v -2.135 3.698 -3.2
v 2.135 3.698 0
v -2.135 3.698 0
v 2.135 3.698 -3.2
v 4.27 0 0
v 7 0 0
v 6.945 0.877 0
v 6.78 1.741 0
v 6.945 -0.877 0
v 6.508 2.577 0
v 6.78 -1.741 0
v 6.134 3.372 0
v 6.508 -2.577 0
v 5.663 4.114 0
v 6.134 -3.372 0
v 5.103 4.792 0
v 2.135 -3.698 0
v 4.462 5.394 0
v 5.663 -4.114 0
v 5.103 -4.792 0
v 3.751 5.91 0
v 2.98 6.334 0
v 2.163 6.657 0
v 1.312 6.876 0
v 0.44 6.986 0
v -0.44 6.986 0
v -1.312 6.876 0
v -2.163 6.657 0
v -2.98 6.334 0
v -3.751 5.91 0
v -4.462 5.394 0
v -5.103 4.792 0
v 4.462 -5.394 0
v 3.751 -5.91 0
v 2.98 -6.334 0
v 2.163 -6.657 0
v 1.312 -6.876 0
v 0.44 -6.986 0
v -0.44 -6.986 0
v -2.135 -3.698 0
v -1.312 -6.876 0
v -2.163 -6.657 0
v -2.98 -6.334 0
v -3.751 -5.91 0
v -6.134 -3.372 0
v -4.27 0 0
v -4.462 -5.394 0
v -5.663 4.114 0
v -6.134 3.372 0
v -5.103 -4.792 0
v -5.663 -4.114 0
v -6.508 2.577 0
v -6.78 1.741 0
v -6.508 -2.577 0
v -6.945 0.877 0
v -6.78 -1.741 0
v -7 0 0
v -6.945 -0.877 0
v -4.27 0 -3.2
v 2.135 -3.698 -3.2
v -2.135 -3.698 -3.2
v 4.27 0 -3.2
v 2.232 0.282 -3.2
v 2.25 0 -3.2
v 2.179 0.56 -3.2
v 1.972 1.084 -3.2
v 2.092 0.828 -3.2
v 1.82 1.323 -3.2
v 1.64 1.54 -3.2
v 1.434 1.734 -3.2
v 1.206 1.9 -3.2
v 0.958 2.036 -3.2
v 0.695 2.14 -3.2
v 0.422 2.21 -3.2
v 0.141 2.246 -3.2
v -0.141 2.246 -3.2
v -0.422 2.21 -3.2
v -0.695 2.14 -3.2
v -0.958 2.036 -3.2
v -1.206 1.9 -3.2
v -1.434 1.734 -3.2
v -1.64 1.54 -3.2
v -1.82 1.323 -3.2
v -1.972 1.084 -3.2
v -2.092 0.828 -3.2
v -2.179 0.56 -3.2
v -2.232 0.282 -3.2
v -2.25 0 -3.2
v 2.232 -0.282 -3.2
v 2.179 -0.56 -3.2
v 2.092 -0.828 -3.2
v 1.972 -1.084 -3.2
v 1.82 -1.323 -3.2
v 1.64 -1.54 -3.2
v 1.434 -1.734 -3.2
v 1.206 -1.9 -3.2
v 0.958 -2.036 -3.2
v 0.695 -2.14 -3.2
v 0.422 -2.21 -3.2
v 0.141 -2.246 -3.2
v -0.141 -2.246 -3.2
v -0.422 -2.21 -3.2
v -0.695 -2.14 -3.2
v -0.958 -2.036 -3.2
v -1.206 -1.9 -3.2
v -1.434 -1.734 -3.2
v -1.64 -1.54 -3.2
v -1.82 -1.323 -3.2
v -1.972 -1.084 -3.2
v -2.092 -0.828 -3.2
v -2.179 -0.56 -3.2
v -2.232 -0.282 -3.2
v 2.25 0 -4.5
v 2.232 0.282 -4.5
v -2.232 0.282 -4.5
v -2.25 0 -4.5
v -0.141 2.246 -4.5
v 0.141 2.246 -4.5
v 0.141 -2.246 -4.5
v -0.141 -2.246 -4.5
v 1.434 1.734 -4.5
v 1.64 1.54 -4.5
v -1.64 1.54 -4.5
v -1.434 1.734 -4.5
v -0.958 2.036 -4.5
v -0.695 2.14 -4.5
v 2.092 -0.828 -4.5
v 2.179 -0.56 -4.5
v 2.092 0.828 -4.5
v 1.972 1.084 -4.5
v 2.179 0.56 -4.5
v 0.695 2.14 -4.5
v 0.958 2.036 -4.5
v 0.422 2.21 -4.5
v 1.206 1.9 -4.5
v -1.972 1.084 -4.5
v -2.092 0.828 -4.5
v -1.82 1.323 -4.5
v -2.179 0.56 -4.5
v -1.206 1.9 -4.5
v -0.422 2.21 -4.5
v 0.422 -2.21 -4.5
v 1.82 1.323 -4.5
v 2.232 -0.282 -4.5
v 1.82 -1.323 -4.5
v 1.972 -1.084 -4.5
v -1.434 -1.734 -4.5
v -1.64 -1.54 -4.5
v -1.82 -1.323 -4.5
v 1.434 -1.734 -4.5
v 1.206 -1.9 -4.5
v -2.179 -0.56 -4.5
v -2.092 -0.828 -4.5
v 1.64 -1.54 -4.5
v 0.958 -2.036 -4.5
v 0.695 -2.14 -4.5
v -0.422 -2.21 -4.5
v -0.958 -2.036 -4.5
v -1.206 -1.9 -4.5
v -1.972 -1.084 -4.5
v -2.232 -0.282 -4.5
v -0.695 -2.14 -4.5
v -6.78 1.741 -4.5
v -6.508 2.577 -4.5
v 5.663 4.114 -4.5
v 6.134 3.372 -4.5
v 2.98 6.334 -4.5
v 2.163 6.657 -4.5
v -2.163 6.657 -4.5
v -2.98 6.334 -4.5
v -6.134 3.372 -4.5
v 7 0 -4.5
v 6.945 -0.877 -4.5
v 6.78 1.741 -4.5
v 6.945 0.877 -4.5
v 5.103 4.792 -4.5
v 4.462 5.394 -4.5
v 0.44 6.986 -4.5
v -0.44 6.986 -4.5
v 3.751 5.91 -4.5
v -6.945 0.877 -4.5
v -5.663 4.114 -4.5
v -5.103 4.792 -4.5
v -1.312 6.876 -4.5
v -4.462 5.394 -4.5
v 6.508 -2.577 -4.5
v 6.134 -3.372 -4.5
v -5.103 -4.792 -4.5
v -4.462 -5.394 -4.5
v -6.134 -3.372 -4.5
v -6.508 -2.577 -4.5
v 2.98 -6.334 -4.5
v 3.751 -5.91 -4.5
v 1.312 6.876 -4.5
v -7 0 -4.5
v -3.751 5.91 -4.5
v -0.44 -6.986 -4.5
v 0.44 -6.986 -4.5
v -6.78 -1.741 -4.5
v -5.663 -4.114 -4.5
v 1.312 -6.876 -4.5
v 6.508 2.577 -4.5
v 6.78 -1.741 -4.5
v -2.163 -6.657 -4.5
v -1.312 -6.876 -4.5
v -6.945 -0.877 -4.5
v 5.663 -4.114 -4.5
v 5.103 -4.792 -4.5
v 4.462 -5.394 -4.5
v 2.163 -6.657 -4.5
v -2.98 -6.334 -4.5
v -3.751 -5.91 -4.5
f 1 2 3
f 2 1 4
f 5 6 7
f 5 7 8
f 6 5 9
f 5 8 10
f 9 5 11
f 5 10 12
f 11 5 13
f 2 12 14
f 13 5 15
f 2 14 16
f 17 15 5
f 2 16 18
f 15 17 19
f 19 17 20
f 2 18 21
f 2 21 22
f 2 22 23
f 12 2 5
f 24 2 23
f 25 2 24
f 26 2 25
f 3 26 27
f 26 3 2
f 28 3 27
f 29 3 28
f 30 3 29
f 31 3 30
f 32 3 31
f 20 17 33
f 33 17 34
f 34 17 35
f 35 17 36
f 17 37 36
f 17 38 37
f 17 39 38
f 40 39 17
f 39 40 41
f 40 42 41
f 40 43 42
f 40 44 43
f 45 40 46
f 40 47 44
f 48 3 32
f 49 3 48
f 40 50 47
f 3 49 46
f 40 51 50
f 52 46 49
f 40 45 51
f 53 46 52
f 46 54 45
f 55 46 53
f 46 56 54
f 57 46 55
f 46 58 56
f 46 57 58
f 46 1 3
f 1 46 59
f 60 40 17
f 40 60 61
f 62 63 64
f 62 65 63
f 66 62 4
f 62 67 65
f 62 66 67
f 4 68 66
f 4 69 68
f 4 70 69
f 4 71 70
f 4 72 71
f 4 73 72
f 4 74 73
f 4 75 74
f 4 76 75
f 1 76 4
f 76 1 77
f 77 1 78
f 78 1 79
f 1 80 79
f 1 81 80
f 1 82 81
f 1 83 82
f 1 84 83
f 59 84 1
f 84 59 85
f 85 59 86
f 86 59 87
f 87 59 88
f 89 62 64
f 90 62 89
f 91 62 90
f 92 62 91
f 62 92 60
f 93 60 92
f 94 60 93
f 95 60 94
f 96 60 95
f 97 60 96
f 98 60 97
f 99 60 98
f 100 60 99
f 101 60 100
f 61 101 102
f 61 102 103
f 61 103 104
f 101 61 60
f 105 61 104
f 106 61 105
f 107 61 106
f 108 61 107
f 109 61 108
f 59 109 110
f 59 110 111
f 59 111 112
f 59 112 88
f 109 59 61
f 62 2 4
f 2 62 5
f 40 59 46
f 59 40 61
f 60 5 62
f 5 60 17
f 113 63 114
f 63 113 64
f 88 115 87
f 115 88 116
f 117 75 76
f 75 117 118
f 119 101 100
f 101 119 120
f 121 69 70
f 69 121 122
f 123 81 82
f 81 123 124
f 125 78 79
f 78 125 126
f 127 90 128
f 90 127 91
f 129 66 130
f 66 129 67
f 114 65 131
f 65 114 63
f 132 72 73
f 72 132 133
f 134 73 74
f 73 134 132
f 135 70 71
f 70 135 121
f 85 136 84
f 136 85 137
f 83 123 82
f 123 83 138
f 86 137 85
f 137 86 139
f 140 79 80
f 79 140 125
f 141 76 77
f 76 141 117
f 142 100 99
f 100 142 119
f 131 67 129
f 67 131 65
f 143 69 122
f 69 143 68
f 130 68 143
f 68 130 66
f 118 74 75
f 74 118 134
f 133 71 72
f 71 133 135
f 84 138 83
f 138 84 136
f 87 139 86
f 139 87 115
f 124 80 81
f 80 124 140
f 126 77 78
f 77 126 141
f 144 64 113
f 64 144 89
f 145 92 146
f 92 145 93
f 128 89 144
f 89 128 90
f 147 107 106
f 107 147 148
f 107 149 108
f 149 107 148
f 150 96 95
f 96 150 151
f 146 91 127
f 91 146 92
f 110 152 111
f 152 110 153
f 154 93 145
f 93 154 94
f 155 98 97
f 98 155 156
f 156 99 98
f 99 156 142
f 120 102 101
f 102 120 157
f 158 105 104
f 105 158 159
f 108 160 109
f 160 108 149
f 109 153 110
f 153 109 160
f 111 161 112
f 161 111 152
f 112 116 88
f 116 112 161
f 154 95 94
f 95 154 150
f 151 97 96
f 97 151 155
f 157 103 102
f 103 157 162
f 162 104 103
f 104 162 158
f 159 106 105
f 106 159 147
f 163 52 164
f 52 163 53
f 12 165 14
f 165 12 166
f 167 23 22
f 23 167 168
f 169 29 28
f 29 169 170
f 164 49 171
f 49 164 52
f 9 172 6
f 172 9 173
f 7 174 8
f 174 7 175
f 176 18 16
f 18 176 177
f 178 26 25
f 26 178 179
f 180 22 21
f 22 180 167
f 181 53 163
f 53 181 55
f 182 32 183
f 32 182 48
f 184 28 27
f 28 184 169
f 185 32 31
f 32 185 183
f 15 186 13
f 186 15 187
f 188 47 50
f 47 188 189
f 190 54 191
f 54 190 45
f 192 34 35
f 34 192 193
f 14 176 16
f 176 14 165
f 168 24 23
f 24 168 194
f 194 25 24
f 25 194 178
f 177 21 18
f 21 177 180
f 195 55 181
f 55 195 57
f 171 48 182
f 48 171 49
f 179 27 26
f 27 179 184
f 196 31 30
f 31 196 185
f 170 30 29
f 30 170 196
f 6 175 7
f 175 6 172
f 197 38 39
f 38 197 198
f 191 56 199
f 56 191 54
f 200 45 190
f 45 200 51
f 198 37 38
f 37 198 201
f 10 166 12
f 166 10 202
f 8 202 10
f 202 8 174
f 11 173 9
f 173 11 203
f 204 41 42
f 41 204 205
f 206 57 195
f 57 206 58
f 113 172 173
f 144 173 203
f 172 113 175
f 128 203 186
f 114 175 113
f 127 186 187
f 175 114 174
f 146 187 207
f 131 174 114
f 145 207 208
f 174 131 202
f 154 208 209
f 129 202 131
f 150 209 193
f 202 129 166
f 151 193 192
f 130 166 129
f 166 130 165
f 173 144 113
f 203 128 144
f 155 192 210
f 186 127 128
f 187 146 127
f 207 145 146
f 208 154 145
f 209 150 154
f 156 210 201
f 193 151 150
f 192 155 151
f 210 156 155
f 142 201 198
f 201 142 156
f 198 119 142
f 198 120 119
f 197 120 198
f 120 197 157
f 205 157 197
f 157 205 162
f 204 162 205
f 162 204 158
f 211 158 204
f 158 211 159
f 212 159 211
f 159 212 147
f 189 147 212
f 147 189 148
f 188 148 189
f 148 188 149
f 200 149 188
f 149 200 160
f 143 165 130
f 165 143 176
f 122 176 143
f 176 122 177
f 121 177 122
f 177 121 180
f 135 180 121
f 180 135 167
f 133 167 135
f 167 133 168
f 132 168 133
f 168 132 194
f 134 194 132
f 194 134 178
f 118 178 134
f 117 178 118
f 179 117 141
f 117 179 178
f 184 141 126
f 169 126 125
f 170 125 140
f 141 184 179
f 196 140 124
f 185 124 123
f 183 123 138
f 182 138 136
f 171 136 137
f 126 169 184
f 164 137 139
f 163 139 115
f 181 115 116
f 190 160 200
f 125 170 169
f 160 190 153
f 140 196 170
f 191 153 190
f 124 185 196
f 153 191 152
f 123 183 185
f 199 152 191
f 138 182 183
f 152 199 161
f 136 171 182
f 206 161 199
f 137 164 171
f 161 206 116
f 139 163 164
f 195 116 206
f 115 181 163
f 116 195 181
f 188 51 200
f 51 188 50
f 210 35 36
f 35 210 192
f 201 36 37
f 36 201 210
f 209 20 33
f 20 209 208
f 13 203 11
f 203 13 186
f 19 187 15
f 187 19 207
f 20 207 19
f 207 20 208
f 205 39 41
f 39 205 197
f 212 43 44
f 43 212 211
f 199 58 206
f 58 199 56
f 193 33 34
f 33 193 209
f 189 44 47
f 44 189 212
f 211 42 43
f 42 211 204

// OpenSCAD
$fn = 50;


difference() {
	union() {
		translate(v = [0, 0, -4.5000000000]) {
			cylinder(h = 4.5000000000, r = 7.0000000000);
		}
	}
	union() {
		translate(v = [0, 0, 0]) {
			rotate(a = [0, 0, 0]) {
				difference() {
					union() {
						translate(v = [0, 0, -3.2000000000]) {
							linear_extrude(height = 3.2000000000) {
								polygon(points = [[4.2698000000, 0.0000000000], [2.1349000000, 3.6977552691], [-2.1349000000, 3.6977552691], [-4.2698000000, 0.0000000000], [-2.1349000000, -3.6977552691], [2.1349000000, -3.6977552691]]);
							}
						}
					}
					union();
				}
			}
		}
		#translate(v = [0, 0, -100.0000000000]) {
			cylinder(h = 200, r = 2.2500000000);
		}
	}
}
